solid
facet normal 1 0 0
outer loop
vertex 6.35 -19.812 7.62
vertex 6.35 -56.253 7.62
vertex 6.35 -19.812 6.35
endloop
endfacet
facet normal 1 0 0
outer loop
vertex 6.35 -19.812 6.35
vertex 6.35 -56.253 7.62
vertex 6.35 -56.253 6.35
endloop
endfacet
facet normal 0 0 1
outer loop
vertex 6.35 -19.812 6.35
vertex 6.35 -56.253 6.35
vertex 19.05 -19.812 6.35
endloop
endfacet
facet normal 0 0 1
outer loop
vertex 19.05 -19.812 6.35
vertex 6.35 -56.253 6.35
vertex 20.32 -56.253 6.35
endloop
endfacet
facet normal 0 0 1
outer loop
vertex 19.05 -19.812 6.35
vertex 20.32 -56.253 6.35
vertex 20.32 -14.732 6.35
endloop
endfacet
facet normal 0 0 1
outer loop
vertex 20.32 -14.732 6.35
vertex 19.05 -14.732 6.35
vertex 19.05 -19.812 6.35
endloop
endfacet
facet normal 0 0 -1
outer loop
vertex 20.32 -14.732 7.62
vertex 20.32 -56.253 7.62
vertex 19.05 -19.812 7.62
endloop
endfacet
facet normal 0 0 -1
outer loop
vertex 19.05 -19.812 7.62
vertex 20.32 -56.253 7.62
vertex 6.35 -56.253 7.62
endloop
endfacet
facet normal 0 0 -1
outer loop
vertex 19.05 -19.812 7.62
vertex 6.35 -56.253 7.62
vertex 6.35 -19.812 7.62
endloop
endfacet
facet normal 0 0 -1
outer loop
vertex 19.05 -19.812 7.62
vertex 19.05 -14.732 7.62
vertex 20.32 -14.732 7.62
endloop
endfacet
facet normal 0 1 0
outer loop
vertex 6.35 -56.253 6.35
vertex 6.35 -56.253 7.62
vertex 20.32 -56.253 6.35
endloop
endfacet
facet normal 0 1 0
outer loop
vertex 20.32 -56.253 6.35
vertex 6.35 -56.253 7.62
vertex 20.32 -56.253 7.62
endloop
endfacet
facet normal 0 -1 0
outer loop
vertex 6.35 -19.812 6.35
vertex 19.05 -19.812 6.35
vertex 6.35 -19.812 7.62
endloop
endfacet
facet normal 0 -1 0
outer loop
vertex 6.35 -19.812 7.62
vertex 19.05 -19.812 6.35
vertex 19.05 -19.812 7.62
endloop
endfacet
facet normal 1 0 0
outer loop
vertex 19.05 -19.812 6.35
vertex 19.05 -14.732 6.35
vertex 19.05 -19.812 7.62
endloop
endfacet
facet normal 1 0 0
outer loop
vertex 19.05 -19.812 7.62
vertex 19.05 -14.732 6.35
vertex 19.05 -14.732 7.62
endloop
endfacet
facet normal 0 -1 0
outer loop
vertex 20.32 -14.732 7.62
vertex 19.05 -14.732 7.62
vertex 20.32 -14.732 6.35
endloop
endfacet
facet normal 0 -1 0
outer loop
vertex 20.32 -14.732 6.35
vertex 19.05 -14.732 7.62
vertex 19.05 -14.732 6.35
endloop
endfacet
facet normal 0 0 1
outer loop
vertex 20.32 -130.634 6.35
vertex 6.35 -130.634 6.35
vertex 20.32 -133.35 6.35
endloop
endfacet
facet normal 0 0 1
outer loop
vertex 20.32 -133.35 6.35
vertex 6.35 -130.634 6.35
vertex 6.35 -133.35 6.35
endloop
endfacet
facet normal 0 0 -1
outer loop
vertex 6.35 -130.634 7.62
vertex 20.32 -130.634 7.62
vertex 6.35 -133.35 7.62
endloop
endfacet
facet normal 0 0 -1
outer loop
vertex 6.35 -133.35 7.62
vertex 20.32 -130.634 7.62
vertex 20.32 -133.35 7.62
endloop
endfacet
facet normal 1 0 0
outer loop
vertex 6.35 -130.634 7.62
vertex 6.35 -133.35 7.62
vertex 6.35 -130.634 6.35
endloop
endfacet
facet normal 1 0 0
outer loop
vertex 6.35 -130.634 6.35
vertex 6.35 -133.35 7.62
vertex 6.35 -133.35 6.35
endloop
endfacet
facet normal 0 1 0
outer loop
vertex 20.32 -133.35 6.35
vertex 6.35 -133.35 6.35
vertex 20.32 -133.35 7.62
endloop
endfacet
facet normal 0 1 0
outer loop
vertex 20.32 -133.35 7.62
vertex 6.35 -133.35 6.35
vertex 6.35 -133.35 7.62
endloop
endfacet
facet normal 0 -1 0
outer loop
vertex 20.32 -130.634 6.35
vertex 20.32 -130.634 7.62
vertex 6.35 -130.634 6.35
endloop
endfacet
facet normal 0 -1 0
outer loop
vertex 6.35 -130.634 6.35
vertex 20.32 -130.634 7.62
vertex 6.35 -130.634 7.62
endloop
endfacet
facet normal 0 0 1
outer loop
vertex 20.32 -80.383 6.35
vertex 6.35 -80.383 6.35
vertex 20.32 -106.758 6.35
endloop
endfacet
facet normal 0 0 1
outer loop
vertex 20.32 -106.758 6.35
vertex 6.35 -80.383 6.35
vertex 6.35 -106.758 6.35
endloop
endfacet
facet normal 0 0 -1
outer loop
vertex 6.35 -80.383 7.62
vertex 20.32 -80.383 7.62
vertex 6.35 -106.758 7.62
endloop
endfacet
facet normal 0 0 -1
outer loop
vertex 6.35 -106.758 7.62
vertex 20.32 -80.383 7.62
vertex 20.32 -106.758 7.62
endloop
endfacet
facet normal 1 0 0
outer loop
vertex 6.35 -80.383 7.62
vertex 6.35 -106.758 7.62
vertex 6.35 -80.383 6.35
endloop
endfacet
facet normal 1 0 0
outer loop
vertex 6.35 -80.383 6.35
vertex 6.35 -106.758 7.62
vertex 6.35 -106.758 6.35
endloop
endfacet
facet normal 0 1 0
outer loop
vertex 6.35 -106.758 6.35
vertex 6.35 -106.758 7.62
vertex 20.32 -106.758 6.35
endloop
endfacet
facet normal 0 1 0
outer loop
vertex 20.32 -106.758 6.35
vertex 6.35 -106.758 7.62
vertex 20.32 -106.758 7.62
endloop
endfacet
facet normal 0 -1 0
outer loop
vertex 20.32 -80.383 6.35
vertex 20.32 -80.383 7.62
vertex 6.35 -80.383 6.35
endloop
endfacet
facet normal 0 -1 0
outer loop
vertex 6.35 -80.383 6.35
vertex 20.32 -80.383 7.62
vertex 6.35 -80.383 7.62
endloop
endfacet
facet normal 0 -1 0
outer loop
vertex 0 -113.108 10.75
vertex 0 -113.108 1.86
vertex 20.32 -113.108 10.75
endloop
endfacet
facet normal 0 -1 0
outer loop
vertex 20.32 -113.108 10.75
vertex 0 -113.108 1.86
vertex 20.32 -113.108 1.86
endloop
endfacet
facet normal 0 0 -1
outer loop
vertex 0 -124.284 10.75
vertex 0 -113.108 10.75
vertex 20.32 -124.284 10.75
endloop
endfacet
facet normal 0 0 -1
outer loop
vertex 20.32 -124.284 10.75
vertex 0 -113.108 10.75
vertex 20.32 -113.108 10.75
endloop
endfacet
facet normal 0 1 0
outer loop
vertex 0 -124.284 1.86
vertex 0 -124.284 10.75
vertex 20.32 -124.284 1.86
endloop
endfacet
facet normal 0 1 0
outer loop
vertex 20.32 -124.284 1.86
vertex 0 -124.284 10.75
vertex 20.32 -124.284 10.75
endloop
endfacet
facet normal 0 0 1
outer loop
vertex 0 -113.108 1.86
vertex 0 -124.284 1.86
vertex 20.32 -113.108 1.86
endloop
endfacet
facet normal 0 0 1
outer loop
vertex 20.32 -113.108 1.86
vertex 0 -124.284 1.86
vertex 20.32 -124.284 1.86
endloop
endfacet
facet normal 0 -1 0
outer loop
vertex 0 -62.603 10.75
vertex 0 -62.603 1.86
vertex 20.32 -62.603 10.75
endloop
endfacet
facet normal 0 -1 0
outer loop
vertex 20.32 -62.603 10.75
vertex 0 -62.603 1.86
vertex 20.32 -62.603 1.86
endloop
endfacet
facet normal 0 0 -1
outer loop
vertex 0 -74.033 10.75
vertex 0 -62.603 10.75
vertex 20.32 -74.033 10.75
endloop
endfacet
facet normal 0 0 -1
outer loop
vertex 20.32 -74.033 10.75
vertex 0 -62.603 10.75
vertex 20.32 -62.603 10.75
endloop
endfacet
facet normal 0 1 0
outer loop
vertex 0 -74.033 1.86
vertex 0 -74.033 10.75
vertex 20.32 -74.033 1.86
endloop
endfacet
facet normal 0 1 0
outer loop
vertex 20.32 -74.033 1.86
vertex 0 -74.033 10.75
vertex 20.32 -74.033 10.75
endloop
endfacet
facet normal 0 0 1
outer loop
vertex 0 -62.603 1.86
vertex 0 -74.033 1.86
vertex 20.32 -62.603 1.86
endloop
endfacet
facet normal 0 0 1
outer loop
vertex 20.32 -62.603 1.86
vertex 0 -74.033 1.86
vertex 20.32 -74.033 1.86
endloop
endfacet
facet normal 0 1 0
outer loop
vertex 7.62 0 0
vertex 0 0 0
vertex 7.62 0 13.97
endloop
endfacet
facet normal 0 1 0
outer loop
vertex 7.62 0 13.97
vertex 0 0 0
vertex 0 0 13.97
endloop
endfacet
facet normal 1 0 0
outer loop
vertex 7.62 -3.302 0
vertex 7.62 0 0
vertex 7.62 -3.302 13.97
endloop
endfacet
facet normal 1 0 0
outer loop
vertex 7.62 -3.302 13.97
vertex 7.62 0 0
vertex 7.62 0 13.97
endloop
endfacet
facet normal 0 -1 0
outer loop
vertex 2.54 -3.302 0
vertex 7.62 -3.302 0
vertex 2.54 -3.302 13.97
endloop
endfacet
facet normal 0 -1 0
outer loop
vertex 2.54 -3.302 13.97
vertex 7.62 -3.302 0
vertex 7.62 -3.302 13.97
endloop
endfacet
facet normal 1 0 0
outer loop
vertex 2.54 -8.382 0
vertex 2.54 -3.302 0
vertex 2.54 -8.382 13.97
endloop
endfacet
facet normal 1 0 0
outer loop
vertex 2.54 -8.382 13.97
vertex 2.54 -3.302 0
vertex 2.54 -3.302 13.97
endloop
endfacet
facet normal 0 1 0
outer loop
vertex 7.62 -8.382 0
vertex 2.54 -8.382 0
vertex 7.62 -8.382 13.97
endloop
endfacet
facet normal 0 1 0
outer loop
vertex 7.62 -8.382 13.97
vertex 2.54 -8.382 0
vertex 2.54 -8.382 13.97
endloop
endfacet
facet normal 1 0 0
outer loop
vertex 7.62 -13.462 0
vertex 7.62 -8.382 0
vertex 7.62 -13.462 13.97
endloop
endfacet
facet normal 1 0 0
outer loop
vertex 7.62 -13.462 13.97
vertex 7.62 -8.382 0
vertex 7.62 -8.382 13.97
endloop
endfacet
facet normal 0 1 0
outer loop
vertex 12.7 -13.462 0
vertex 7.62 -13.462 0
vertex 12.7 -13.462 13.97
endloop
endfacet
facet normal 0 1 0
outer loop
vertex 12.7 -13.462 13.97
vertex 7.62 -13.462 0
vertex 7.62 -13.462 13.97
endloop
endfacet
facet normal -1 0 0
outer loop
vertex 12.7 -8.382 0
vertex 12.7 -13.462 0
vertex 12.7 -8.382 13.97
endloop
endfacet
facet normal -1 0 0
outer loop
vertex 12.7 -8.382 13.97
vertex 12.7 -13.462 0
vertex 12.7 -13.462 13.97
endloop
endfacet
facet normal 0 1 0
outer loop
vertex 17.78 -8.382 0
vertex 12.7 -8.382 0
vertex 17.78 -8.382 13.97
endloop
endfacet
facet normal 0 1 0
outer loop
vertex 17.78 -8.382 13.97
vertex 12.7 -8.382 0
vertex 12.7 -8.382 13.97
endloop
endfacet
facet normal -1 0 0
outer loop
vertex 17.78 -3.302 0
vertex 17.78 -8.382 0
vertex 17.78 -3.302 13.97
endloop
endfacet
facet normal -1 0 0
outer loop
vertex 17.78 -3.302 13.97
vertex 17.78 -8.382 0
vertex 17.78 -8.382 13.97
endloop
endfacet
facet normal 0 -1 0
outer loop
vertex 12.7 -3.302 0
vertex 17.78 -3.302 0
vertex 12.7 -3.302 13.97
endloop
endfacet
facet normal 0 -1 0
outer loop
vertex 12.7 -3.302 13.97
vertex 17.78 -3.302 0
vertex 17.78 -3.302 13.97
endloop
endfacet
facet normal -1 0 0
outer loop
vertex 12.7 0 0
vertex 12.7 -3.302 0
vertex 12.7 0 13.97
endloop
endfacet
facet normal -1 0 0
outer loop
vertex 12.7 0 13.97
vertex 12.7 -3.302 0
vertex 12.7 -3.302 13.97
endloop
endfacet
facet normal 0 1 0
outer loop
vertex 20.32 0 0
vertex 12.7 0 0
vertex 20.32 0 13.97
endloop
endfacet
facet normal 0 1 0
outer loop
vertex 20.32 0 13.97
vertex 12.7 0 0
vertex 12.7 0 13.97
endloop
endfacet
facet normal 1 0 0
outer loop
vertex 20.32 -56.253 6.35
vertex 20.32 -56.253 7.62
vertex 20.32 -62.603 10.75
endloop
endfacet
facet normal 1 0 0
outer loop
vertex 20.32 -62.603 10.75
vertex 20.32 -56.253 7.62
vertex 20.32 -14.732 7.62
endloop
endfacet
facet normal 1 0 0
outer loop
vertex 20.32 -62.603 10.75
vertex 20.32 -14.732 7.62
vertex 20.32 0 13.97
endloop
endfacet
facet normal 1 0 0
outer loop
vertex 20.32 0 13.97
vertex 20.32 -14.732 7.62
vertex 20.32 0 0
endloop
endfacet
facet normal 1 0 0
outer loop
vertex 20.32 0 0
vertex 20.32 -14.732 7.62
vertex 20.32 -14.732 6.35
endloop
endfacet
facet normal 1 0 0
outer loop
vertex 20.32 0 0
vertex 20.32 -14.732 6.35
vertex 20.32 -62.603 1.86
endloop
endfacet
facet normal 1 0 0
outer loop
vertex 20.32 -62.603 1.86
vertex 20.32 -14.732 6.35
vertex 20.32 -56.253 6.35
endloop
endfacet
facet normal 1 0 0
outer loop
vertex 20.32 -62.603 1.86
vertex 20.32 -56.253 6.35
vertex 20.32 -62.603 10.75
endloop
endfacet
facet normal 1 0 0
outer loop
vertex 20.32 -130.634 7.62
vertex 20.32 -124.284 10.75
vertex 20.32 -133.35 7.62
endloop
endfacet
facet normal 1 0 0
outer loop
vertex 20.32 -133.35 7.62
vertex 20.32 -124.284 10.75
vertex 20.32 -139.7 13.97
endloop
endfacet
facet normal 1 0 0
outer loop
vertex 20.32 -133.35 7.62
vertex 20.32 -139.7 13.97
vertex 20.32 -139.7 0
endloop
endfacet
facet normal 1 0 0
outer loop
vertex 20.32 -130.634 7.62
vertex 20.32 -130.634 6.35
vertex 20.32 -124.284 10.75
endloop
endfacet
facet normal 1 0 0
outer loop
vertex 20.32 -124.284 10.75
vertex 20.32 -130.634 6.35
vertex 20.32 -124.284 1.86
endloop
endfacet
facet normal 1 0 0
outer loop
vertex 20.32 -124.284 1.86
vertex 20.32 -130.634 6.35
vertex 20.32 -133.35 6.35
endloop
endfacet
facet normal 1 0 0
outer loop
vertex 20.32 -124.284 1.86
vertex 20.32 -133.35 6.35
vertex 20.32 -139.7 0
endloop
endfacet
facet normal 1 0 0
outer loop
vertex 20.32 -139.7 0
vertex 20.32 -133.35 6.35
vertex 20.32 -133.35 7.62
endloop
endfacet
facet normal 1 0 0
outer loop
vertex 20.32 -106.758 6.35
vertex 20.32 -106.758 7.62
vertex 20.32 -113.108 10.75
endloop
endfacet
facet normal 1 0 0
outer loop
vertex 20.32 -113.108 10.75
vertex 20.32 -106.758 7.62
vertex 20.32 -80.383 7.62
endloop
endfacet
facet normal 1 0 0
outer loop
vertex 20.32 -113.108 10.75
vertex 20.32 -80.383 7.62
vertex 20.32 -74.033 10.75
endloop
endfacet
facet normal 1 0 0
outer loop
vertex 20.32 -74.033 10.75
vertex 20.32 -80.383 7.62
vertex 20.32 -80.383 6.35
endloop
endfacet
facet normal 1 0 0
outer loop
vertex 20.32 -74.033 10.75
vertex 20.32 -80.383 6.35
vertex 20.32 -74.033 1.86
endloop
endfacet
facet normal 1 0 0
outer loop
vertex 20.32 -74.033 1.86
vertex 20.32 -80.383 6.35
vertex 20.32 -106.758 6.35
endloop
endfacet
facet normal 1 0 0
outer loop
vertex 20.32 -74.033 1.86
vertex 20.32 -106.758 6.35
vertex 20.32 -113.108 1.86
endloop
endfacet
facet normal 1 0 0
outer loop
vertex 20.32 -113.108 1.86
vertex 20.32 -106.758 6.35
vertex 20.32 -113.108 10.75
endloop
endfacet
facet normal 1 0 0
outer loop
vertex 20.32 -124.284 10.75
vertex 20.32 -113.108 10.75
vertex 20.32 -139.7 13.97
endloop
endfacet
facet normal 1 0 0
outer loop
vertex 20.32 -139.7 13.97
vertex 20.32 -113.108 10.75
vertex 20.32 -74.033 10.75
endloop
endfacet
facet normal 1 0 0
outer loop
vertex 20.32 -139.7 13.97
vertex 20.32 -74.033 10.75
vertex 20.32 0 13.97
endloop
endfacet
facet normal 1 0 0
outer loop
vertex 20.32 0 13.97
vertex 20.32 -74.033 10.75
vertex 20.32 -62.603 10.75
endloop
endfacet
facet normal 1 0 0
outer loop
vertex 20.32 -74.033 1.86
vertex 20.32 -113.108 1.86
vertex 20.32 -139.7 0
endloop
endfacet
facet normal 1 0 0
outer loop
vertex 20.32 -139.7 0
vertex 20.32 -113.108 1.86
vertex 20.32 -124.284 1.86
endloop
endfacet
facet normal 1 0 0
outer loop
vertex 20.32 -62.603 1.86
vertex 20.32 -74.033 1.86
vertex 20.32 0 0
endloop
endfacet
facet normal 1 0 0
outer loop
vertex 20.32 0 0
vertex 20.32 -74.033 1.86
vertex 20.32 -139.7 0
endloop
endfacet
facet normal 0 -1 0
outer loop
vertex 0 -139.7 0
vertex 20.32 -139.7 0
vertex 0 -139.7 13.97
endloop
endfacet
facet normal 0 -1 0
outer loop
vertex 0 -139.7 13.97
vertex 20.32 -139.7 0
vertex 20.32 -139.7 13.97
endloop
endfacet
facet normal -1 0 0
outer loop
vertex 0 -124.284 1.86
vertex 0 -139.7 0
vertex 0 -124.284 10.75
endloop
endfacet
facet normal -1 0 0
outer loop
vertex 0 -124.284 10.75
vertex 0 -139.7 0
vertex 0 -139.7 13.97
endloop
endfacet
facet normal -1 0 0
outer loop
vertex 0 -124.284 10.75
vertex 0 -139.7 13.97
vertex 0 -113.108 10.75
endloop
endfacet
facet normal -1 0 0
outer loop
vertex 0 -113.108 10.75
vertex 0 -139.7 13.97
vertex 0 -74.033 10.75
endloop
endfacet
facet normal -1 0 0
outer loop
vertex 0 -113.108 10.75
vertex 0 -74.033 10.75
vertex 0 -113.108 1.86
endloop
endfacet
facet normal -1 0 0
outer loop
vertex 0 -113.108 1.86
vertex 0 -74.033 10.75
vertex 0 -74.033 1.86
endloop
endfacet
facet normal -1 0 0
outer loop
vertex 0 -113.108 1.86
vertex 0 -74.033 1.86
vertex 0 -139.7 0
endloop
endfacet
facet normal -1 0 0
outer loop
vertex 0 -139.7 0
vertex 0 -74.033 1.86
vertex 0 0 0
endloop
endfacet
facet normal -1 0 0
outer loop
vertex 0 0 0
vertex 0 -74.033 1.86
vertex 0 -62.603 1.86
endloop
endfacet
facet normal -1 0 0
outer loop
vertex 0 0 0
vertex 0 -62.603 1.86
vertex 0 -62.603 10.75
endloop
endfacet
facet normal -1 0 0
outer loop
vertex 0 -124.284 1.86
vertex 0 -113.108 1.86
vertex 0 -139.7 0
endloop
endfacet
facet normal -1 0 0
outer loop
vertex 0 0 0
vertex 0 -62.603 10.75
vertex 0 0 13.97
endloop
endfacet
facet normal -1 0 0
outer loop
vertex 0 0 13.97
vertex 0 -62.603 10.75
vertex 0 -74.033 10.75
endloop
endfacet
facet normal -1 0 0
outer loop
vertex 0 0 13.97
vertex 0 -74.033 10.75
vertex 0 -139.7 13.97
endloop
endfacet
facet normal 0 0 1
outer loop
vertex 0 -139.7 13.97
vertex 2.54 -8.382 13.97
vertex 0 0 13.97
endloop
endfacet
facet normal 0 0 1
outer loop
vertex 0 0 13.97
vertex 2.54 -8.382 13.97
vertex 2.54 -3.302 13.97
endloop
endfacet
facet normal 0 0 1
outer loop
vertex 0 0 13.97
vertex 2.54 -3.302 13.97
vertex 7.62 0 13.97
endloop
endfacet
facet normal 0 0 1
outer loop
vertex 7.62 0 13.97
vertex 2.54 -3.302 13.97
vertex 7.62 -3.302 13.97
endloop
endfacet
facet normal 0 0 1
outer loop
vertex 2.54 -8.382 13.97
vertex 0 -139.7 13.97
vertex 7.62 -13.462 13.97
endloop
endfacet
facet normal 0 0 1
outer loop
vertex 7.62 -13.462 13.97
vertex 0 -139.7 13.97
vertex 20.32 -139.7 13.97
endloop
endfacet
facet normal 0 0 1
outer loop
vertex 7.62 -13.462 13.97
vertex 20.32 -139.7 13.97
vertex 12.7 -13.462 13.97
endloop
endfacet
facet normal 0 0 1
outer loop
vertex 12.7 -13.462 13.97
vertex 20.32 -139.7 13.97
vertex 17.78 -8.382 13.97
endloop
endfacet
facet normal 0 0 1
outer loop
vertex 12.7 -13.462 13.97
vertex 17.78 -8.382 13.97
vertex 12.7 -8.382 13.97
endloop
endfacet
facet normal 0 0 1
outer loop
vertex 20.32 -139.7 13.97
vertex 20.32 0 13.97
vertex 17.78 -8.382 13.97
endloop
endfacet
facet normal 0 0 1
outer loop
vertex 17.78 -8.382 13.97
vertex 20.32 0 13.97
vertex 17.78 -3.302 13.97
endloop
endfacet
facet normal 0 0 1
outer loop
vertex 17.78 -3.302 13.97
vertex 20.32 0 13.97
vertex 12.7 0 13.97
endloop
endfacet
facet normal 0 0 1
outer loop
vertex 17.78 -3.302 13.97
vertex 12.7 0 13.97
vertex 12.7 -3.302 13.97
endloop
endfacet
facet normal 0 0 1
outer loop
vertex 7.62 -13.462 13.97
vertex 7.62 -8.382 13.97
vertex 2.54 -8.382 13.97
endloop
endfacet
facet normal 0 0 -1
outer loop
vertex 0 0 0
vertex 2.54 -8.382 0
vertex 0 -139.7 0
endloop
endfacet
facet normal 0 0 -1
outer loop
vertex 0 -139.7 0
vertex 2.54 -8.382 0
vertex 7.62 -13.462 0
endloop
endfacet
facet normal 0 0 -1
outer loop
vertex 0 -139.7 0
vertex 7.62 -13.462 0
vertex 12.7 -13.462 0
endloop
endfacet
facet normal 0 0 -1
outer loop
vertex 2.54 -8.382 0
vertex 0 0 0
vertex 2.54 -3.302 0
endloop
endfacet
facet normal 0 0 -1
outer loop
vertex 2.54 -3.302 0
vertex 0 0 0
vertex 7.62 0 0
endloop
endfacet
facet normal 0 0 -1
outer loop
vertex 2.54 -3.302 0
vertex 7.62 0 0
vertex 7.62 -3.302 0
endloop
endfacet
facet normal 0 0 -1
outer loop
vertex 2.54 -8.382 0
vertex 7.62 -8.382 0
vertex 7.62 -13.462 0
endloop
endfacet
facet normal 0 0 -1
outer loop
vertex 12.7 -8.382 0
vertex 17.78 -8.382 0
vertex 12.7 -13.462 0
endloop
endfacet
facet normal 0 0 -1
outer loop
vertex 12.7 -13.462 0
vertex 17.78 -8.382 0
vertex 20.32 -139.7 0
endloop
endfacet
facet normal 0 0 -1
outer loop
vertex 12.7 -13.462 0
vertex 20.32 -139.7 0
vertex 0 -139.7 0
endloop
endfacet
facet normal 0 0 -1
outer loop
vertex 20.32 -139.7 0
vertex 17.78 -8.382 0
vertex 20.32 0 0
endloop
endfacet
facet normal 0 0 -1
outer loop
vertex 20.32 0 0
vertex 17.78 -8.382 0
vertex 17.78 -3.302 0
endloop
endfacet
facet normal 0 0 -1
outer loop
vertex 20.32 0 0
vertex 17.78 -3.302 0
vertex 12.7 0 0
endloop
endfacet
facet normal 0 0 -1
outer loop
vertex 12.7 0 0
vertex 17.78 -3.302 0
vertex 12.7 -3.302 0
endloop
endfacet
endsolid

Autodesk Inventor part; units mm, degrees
ref_plane "YZ Plane" through (0, 0, 0) normal (1, 0, 0) x (0, 1, 0)
ref_plane "XZ Plane" through (0, 0, 0) normal (0, 1, 0) x (-1, 0, 0)
ref_plane "XY Plane" through (0, 0, 0) normal (0, 0, 1) x (1, 0, 0)
sketch "Sketch1" plane through (0, 0, 0) normal (0, 0, 1) x (1, 0, 0)
  line L0 (0, 0) -> (20.32, 0)
  line L1 (20.32, 0) -> (20.32, -139.7)
  line L2 (20.32, -139.7) -> (0, -139.7)
  line L3 (0, -139.7) -> (0, 0)
  line L4 (0, 0) -> (7.62, 0)
  line L5 (20.32, 0) -> (12.7, 0)
  line L6 (7.62, 0) -> (7.62, -3.302)
  line L7 (12.7, 0) -> (12.7, -3.302)
  line L8 (12.7, -3.302) -> (17.78, -3.302)
  line L9 (17.78, -3.302) -> (17.78, -8.382)
  line L10 (17.78, -8.382) -> (12.7, -8.382)
  line L11 (12.7, -8.382) -> (12.7, -13.462)
  line L12 (12.7, -13.462) -> (7.62, -13.462)
  line L13 (7.62, -13.462) -> (7.62, -8.382)
  line L14 (7.62, -8.382) -> (2.54, -8.382)
  line L15 (2.54, -8.382) -> (2.54, -3.302)
  line L16 (2.54, -3.302) -> (7.62, -3.302)
  line L17 (7.62, -3.302) -> (7.62, 0)
  dimension "d0" = 20.32
  dimension "d1" = 139.7
  dimension "d2" = 7.62
  dimension "d3" = 7.62
  dimension "d4" = 3.302
  dimension "d5" = 5.08
  dimension "d6" = 5.08
  dimension "d7" = 5.08
  dimension "d8" = 5.08
  dimension "d9" = 5.08
  dimension "d10" = 5.08
  dimension "d11" = 5.08
  dimension "d12" = 5.08
  dimension "d13" = 5.08
extrude "Extrusion1" add sketch "Sketch1" along normal blind 13.97 contours L0 L6 L16 L15 L14 L13 L12 L11 L10 L9 L8 L7 L1 L2 L3
sketch "Sketch2" plane through (20.32, -139.7, 0) normal (1, 0, 0) x (0, 0, -1)
  line L0 (-10.7501, 15.4155) -> (-10.7501, 26.5915)
  line L1 (-10.7501, 26.5915) -> (-1.8601, 26.5915)
  line L2 (-1.8601, 26.5915) -> (-1.8601, 15.4155)
  line L3 (-1.8601, 15.4155) -> (-10.7501, 15.4155)
  line L4 (-10.7501, 65.6672) -> (-10.7501, 77.0972)
  line L5 (-10.7501, 77.0972) -> (-1.8601, 77.0972)
  line L6 (-1.8601, 77.0972) -> (-1.8601, 65.6672)
  line L7 (-1.8601, 65.6672) -> (-10.7501, 65.6672)
  point P0 (0, 139.7)
  dimension "d16" = 11.176
  dimension "d17" = 8.89
  dimension "d18" = 11.43
  dimension "d19" = 8.89
extrude "Extrusion2" cut sketch "Sketch2" against normal blind 533.4
shell "Shell1" thickness 6.35 removed faces 1 at (20.32, -20.8676, 8.24)
sketch "Sketch3" plane through (0, 0, 13.97) normal (0, 0, 1) x (1, 0, 0)
  point P0 (0, 0)
properties part number "ripnewvertical2"
